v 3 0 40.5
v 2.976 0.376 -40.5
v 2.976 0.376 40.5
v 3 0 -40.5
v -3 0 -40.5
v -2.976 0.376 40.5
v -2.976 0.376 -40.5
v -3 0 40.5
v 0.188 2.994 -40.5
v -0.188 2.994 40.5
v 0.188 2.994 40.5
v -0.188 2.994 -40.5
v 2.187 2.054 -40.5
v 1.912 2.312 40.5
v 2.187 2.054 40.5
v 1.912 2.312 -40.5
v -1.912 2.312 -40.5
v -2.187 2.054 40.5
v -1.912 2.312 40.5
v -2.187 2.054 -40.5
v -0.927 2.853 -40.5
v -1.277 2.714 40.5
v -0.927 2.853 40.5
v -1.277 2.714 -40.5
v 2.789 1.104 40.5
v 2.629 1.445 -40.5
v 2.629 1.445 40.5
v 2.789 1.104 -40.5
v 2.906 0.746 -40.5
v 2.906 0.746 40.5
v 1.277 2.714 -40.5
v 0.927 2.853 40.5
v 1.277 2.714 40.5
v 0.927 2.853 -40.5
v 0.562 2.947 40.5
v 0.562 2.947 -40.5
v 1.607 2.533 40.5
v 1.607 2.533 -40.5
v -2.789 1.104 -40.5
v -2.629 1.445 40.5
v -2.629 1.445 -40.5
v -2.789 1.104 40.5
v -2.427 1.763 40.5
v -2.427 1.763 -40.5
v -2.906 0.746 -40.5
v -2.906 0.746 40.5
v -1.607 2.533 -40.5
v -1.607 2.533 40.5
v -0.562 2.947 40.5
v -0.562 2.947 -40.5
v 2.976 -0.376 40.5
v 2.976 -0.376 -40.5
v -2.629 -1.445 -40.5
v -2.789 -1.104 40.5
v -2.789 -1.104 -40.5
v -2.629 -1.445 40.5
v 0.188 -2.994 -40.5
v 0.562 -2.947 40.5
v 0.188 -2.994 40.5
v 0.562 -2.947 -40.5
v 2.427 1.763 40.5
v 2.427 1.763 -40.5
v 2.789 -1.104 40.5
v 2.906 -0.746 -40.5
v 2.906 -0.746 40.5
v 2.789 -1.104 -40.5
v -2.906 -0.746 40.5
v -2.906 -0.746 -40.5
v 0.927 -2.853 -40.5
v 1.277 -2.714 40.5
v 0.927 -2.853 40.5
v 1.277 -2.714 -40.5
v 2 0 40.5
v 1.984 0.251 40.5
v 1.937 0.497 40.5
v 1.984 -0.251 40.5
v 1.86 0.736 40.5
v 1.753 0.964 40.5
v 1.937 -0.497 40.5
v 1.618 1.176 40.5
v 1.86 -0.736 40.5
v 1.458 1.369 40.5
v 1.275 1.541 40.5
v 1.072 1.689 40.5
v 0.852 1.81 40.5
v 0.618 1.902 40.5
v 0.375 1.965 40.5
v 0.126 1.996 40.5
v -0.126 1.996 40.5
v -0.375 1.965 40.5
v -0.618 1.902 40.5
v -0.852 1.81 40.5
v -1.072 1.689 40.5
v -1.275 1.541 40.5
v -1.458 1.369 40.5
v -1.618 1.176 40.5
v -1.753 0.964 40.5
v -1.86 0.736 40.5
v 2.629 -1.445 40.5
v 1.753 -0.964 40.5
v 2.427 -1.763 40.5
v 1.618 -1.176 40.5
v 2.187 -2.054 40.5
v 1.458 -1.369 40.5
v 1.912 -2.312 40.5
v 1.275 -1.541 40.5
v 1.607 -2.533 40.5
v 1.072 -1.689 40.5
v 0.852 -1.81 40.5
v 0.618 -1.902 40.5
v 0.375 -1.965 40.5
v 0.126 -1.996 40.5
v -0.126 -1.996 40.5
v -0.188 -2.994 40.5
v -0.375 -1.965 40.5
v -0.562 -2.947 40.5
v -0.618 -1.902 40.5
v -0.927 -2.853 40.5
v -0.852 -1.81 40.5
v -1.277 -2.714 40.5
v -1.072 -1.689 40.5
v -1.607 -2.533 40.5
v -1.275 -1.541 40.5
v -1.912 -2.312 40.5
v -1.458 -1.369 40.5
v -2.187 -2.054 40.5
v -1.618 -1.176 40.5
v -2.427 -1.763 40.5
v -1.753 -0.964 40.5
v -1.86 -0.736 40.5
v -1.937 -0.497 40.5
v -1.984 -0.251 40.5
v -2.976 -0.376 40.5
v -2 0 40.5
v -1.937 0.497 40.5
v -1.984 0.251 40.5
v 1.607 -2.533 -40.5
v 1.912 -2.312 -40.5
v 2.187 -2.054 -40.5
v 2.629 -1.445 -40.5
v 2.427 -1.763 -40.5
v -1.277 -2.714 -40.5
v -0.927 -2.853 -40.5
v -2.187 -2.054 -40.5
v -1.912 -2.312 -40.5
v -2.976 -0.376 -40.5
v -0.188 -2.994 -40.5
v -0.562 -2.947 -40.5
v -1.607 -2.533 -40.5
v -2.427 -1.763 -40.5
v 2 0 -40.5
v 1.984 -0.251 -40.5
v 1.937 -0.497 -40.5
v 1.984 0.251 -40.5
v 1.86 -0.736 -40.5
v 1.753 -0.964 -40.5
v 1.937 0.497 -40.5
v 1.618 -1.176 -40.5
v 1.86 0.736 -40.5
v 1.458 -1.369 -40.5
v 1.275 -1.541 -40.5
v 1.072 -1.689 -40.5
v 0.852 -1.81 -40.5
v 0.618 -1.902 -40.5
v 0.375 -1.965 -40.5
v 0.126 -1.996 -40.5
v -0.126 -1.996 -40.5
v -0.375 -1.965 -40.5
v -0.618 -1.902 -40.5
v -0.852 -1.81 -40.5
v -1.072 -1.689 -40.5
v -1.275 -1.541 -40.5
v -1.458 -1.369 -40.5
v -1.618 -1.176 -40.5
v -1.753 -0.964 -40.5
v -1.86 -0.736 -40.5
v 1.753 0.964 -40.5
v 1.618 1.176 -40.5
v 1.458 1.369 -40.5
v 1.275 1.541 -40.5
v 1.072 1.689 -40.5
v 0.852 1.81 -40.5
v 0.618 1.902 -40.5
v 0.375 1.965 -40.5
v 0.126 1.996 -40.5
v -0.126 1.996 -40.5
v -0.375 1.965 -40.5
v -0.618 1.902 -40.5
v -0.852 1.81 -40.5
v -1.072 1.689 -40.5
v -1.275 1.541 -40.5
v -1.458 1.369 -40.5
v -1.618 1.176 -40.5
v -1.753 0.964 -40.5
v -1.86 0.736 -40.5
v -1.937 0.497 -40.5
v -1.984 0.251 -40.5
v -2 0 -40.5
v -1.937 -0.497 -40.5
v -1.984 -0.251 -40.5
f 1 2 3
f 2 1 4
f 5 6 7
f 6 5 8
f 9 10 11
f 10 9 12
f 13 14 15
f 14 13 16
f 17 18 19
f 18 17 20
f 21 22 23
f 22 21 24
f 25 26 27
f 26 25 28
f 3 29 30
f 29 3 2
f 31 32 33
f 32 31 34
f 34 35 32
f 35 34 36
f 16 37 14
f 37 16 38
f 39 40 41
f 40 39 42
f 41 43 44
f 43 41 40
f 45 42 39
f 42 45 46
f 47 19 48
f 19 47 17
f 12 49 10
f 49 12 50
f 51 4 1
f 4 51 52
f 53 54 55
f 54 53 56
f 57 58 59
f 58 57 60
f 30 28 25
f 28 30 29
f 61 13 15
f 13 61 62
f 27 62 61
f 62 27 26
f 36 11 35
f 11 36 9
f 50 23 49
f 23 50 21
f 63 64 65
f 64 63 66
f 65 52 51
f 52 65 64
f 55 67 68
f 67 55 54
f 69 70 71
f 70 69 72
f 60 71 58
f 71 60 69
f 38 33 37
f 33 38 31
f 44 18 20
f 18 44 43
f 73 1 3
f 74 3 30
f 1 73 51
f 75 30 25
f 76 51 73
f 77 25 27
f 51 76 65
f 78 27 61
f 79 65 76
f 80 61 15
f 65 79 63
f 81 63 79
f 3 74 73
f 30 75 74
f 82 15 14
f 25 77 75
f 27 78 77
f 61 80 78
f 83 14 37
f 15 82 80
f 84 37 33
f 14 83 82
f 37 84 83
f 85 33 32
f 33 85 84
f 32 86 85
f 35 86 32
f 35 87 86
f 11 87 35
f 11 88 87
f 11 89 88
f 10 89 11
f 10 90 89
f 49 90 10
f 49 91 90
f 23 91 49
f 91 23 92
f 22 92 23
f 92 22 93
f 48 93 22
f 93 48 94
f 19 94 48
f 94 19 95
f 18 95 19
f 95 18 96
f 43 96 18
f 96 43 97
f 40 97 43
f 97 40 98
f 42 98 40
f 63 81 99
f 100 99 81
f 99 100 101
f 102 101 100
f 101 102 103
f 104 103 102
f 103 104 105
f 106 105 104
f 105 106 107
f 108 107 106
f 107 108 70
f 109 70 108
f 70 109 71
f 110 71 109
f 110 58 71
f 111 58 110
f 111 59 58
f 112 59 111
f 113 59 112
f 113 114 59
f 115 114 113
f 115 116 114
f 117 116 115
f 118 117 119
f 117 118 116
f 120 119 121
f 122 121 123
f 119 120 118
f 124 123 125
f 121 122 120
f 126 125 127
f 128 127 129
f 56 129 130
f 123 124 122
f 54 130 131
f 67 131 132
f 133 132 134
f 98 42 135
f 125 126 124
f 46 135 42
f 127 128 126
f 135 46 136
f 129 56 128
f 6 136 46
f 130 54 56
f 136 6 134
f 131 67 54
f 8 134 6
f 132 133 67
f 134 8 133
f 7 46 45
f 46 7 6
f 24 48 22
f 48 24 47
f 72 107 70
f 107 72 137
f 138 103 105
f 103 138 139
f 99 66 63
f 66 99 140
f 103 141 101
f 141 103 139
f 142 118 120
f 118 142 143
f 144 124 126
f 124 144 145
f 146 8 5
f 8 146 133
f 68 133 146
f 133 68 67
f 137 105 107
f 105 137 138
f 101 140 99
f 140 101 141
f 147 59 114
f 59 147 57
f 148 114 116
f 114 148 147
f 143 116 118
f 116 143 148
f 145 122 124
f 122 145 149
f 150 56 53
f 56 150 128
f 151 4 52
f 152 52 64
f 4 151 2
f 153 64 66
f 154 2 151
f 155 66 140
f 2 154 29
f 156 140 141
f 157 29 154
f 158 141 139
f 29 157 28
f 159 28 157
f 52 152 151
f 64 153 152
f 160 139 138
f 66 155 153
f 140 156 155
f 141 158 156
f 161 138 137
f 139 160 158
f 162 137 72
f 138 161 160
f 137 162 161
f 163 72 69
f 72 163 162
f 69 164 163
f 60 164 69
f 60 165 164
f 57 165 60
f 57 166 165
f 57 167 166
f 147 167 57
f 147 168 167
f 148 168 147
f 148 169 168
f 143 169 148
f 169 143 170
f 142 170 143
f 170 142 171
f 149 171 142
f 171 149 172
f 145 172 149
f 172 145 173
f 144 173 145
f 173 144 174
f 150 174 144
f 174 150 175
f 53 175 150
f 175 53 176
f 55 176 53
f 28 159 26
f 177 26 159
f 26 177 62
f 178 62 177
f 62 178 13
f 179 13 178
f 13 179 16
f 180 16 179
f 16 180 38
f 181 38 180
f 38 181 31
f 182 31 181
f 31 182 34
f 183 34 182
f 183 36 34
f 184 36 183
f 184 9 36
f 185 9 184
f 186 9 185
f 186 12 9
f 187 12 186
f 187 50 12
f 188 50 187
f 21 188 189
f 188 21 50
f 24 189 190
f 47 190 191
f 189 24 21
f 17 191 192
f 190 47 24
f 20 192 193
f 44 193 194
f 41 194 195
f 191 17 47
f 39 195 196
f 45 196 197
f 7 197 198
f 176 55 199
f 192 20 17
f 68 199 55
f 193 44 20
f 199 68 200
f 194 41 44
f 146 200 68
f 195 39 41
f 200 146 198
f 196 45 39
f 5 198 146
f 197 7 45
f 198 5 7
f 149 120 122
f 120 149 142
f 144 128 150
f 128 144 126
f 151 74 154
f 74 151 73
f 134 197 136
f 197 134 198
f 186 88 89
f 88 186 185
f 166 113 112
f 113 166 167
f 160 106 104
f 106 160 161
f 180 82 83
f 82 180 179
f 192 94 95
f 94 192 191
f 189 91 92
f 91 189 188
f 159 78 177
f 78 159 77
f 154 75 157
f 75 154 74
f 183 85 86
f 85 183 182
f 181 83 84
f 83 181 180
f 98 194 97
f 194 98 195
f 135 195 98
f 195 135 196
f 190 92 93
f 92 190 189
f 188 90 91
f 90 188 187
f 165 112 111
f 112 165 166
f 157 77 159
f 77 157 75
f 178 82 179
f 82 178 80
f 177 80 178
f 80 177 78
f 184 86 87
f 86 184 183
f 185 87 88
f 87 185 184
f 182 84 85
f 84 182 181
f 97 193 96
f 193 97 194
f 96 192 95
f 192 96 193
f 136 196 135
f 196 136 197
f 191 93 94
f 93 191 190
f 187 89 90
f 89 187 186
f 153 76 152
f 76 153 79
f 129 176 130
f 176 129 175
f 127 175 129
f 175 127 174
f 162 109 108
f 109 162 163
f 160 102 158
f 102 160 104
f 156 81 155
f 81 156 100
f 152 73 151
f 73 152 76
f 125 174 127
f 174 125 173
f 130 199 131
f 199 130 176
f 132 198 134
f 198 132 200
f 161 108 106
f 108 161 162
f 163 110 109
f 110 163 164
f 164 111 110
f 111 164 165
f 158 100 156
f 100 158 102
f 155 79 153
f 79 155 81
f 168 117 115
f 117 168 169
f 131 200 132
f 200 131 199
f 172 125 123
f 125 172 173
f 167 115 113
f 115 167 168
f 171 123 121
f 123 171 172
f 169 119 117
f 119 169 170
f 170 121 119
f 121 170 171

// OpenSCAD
$fn = 50;


difference() {
	union() {
		translate(v = [0, 0, -40.5000000000]) {
			cylinder(h = 81, r = 3.0000000000);
		}
	}
	union() {
		translate(v = [0, 0, -100.0000000000]) {
			cylinder(h = 200, r = 2.0000000000);
		}
	}
}
